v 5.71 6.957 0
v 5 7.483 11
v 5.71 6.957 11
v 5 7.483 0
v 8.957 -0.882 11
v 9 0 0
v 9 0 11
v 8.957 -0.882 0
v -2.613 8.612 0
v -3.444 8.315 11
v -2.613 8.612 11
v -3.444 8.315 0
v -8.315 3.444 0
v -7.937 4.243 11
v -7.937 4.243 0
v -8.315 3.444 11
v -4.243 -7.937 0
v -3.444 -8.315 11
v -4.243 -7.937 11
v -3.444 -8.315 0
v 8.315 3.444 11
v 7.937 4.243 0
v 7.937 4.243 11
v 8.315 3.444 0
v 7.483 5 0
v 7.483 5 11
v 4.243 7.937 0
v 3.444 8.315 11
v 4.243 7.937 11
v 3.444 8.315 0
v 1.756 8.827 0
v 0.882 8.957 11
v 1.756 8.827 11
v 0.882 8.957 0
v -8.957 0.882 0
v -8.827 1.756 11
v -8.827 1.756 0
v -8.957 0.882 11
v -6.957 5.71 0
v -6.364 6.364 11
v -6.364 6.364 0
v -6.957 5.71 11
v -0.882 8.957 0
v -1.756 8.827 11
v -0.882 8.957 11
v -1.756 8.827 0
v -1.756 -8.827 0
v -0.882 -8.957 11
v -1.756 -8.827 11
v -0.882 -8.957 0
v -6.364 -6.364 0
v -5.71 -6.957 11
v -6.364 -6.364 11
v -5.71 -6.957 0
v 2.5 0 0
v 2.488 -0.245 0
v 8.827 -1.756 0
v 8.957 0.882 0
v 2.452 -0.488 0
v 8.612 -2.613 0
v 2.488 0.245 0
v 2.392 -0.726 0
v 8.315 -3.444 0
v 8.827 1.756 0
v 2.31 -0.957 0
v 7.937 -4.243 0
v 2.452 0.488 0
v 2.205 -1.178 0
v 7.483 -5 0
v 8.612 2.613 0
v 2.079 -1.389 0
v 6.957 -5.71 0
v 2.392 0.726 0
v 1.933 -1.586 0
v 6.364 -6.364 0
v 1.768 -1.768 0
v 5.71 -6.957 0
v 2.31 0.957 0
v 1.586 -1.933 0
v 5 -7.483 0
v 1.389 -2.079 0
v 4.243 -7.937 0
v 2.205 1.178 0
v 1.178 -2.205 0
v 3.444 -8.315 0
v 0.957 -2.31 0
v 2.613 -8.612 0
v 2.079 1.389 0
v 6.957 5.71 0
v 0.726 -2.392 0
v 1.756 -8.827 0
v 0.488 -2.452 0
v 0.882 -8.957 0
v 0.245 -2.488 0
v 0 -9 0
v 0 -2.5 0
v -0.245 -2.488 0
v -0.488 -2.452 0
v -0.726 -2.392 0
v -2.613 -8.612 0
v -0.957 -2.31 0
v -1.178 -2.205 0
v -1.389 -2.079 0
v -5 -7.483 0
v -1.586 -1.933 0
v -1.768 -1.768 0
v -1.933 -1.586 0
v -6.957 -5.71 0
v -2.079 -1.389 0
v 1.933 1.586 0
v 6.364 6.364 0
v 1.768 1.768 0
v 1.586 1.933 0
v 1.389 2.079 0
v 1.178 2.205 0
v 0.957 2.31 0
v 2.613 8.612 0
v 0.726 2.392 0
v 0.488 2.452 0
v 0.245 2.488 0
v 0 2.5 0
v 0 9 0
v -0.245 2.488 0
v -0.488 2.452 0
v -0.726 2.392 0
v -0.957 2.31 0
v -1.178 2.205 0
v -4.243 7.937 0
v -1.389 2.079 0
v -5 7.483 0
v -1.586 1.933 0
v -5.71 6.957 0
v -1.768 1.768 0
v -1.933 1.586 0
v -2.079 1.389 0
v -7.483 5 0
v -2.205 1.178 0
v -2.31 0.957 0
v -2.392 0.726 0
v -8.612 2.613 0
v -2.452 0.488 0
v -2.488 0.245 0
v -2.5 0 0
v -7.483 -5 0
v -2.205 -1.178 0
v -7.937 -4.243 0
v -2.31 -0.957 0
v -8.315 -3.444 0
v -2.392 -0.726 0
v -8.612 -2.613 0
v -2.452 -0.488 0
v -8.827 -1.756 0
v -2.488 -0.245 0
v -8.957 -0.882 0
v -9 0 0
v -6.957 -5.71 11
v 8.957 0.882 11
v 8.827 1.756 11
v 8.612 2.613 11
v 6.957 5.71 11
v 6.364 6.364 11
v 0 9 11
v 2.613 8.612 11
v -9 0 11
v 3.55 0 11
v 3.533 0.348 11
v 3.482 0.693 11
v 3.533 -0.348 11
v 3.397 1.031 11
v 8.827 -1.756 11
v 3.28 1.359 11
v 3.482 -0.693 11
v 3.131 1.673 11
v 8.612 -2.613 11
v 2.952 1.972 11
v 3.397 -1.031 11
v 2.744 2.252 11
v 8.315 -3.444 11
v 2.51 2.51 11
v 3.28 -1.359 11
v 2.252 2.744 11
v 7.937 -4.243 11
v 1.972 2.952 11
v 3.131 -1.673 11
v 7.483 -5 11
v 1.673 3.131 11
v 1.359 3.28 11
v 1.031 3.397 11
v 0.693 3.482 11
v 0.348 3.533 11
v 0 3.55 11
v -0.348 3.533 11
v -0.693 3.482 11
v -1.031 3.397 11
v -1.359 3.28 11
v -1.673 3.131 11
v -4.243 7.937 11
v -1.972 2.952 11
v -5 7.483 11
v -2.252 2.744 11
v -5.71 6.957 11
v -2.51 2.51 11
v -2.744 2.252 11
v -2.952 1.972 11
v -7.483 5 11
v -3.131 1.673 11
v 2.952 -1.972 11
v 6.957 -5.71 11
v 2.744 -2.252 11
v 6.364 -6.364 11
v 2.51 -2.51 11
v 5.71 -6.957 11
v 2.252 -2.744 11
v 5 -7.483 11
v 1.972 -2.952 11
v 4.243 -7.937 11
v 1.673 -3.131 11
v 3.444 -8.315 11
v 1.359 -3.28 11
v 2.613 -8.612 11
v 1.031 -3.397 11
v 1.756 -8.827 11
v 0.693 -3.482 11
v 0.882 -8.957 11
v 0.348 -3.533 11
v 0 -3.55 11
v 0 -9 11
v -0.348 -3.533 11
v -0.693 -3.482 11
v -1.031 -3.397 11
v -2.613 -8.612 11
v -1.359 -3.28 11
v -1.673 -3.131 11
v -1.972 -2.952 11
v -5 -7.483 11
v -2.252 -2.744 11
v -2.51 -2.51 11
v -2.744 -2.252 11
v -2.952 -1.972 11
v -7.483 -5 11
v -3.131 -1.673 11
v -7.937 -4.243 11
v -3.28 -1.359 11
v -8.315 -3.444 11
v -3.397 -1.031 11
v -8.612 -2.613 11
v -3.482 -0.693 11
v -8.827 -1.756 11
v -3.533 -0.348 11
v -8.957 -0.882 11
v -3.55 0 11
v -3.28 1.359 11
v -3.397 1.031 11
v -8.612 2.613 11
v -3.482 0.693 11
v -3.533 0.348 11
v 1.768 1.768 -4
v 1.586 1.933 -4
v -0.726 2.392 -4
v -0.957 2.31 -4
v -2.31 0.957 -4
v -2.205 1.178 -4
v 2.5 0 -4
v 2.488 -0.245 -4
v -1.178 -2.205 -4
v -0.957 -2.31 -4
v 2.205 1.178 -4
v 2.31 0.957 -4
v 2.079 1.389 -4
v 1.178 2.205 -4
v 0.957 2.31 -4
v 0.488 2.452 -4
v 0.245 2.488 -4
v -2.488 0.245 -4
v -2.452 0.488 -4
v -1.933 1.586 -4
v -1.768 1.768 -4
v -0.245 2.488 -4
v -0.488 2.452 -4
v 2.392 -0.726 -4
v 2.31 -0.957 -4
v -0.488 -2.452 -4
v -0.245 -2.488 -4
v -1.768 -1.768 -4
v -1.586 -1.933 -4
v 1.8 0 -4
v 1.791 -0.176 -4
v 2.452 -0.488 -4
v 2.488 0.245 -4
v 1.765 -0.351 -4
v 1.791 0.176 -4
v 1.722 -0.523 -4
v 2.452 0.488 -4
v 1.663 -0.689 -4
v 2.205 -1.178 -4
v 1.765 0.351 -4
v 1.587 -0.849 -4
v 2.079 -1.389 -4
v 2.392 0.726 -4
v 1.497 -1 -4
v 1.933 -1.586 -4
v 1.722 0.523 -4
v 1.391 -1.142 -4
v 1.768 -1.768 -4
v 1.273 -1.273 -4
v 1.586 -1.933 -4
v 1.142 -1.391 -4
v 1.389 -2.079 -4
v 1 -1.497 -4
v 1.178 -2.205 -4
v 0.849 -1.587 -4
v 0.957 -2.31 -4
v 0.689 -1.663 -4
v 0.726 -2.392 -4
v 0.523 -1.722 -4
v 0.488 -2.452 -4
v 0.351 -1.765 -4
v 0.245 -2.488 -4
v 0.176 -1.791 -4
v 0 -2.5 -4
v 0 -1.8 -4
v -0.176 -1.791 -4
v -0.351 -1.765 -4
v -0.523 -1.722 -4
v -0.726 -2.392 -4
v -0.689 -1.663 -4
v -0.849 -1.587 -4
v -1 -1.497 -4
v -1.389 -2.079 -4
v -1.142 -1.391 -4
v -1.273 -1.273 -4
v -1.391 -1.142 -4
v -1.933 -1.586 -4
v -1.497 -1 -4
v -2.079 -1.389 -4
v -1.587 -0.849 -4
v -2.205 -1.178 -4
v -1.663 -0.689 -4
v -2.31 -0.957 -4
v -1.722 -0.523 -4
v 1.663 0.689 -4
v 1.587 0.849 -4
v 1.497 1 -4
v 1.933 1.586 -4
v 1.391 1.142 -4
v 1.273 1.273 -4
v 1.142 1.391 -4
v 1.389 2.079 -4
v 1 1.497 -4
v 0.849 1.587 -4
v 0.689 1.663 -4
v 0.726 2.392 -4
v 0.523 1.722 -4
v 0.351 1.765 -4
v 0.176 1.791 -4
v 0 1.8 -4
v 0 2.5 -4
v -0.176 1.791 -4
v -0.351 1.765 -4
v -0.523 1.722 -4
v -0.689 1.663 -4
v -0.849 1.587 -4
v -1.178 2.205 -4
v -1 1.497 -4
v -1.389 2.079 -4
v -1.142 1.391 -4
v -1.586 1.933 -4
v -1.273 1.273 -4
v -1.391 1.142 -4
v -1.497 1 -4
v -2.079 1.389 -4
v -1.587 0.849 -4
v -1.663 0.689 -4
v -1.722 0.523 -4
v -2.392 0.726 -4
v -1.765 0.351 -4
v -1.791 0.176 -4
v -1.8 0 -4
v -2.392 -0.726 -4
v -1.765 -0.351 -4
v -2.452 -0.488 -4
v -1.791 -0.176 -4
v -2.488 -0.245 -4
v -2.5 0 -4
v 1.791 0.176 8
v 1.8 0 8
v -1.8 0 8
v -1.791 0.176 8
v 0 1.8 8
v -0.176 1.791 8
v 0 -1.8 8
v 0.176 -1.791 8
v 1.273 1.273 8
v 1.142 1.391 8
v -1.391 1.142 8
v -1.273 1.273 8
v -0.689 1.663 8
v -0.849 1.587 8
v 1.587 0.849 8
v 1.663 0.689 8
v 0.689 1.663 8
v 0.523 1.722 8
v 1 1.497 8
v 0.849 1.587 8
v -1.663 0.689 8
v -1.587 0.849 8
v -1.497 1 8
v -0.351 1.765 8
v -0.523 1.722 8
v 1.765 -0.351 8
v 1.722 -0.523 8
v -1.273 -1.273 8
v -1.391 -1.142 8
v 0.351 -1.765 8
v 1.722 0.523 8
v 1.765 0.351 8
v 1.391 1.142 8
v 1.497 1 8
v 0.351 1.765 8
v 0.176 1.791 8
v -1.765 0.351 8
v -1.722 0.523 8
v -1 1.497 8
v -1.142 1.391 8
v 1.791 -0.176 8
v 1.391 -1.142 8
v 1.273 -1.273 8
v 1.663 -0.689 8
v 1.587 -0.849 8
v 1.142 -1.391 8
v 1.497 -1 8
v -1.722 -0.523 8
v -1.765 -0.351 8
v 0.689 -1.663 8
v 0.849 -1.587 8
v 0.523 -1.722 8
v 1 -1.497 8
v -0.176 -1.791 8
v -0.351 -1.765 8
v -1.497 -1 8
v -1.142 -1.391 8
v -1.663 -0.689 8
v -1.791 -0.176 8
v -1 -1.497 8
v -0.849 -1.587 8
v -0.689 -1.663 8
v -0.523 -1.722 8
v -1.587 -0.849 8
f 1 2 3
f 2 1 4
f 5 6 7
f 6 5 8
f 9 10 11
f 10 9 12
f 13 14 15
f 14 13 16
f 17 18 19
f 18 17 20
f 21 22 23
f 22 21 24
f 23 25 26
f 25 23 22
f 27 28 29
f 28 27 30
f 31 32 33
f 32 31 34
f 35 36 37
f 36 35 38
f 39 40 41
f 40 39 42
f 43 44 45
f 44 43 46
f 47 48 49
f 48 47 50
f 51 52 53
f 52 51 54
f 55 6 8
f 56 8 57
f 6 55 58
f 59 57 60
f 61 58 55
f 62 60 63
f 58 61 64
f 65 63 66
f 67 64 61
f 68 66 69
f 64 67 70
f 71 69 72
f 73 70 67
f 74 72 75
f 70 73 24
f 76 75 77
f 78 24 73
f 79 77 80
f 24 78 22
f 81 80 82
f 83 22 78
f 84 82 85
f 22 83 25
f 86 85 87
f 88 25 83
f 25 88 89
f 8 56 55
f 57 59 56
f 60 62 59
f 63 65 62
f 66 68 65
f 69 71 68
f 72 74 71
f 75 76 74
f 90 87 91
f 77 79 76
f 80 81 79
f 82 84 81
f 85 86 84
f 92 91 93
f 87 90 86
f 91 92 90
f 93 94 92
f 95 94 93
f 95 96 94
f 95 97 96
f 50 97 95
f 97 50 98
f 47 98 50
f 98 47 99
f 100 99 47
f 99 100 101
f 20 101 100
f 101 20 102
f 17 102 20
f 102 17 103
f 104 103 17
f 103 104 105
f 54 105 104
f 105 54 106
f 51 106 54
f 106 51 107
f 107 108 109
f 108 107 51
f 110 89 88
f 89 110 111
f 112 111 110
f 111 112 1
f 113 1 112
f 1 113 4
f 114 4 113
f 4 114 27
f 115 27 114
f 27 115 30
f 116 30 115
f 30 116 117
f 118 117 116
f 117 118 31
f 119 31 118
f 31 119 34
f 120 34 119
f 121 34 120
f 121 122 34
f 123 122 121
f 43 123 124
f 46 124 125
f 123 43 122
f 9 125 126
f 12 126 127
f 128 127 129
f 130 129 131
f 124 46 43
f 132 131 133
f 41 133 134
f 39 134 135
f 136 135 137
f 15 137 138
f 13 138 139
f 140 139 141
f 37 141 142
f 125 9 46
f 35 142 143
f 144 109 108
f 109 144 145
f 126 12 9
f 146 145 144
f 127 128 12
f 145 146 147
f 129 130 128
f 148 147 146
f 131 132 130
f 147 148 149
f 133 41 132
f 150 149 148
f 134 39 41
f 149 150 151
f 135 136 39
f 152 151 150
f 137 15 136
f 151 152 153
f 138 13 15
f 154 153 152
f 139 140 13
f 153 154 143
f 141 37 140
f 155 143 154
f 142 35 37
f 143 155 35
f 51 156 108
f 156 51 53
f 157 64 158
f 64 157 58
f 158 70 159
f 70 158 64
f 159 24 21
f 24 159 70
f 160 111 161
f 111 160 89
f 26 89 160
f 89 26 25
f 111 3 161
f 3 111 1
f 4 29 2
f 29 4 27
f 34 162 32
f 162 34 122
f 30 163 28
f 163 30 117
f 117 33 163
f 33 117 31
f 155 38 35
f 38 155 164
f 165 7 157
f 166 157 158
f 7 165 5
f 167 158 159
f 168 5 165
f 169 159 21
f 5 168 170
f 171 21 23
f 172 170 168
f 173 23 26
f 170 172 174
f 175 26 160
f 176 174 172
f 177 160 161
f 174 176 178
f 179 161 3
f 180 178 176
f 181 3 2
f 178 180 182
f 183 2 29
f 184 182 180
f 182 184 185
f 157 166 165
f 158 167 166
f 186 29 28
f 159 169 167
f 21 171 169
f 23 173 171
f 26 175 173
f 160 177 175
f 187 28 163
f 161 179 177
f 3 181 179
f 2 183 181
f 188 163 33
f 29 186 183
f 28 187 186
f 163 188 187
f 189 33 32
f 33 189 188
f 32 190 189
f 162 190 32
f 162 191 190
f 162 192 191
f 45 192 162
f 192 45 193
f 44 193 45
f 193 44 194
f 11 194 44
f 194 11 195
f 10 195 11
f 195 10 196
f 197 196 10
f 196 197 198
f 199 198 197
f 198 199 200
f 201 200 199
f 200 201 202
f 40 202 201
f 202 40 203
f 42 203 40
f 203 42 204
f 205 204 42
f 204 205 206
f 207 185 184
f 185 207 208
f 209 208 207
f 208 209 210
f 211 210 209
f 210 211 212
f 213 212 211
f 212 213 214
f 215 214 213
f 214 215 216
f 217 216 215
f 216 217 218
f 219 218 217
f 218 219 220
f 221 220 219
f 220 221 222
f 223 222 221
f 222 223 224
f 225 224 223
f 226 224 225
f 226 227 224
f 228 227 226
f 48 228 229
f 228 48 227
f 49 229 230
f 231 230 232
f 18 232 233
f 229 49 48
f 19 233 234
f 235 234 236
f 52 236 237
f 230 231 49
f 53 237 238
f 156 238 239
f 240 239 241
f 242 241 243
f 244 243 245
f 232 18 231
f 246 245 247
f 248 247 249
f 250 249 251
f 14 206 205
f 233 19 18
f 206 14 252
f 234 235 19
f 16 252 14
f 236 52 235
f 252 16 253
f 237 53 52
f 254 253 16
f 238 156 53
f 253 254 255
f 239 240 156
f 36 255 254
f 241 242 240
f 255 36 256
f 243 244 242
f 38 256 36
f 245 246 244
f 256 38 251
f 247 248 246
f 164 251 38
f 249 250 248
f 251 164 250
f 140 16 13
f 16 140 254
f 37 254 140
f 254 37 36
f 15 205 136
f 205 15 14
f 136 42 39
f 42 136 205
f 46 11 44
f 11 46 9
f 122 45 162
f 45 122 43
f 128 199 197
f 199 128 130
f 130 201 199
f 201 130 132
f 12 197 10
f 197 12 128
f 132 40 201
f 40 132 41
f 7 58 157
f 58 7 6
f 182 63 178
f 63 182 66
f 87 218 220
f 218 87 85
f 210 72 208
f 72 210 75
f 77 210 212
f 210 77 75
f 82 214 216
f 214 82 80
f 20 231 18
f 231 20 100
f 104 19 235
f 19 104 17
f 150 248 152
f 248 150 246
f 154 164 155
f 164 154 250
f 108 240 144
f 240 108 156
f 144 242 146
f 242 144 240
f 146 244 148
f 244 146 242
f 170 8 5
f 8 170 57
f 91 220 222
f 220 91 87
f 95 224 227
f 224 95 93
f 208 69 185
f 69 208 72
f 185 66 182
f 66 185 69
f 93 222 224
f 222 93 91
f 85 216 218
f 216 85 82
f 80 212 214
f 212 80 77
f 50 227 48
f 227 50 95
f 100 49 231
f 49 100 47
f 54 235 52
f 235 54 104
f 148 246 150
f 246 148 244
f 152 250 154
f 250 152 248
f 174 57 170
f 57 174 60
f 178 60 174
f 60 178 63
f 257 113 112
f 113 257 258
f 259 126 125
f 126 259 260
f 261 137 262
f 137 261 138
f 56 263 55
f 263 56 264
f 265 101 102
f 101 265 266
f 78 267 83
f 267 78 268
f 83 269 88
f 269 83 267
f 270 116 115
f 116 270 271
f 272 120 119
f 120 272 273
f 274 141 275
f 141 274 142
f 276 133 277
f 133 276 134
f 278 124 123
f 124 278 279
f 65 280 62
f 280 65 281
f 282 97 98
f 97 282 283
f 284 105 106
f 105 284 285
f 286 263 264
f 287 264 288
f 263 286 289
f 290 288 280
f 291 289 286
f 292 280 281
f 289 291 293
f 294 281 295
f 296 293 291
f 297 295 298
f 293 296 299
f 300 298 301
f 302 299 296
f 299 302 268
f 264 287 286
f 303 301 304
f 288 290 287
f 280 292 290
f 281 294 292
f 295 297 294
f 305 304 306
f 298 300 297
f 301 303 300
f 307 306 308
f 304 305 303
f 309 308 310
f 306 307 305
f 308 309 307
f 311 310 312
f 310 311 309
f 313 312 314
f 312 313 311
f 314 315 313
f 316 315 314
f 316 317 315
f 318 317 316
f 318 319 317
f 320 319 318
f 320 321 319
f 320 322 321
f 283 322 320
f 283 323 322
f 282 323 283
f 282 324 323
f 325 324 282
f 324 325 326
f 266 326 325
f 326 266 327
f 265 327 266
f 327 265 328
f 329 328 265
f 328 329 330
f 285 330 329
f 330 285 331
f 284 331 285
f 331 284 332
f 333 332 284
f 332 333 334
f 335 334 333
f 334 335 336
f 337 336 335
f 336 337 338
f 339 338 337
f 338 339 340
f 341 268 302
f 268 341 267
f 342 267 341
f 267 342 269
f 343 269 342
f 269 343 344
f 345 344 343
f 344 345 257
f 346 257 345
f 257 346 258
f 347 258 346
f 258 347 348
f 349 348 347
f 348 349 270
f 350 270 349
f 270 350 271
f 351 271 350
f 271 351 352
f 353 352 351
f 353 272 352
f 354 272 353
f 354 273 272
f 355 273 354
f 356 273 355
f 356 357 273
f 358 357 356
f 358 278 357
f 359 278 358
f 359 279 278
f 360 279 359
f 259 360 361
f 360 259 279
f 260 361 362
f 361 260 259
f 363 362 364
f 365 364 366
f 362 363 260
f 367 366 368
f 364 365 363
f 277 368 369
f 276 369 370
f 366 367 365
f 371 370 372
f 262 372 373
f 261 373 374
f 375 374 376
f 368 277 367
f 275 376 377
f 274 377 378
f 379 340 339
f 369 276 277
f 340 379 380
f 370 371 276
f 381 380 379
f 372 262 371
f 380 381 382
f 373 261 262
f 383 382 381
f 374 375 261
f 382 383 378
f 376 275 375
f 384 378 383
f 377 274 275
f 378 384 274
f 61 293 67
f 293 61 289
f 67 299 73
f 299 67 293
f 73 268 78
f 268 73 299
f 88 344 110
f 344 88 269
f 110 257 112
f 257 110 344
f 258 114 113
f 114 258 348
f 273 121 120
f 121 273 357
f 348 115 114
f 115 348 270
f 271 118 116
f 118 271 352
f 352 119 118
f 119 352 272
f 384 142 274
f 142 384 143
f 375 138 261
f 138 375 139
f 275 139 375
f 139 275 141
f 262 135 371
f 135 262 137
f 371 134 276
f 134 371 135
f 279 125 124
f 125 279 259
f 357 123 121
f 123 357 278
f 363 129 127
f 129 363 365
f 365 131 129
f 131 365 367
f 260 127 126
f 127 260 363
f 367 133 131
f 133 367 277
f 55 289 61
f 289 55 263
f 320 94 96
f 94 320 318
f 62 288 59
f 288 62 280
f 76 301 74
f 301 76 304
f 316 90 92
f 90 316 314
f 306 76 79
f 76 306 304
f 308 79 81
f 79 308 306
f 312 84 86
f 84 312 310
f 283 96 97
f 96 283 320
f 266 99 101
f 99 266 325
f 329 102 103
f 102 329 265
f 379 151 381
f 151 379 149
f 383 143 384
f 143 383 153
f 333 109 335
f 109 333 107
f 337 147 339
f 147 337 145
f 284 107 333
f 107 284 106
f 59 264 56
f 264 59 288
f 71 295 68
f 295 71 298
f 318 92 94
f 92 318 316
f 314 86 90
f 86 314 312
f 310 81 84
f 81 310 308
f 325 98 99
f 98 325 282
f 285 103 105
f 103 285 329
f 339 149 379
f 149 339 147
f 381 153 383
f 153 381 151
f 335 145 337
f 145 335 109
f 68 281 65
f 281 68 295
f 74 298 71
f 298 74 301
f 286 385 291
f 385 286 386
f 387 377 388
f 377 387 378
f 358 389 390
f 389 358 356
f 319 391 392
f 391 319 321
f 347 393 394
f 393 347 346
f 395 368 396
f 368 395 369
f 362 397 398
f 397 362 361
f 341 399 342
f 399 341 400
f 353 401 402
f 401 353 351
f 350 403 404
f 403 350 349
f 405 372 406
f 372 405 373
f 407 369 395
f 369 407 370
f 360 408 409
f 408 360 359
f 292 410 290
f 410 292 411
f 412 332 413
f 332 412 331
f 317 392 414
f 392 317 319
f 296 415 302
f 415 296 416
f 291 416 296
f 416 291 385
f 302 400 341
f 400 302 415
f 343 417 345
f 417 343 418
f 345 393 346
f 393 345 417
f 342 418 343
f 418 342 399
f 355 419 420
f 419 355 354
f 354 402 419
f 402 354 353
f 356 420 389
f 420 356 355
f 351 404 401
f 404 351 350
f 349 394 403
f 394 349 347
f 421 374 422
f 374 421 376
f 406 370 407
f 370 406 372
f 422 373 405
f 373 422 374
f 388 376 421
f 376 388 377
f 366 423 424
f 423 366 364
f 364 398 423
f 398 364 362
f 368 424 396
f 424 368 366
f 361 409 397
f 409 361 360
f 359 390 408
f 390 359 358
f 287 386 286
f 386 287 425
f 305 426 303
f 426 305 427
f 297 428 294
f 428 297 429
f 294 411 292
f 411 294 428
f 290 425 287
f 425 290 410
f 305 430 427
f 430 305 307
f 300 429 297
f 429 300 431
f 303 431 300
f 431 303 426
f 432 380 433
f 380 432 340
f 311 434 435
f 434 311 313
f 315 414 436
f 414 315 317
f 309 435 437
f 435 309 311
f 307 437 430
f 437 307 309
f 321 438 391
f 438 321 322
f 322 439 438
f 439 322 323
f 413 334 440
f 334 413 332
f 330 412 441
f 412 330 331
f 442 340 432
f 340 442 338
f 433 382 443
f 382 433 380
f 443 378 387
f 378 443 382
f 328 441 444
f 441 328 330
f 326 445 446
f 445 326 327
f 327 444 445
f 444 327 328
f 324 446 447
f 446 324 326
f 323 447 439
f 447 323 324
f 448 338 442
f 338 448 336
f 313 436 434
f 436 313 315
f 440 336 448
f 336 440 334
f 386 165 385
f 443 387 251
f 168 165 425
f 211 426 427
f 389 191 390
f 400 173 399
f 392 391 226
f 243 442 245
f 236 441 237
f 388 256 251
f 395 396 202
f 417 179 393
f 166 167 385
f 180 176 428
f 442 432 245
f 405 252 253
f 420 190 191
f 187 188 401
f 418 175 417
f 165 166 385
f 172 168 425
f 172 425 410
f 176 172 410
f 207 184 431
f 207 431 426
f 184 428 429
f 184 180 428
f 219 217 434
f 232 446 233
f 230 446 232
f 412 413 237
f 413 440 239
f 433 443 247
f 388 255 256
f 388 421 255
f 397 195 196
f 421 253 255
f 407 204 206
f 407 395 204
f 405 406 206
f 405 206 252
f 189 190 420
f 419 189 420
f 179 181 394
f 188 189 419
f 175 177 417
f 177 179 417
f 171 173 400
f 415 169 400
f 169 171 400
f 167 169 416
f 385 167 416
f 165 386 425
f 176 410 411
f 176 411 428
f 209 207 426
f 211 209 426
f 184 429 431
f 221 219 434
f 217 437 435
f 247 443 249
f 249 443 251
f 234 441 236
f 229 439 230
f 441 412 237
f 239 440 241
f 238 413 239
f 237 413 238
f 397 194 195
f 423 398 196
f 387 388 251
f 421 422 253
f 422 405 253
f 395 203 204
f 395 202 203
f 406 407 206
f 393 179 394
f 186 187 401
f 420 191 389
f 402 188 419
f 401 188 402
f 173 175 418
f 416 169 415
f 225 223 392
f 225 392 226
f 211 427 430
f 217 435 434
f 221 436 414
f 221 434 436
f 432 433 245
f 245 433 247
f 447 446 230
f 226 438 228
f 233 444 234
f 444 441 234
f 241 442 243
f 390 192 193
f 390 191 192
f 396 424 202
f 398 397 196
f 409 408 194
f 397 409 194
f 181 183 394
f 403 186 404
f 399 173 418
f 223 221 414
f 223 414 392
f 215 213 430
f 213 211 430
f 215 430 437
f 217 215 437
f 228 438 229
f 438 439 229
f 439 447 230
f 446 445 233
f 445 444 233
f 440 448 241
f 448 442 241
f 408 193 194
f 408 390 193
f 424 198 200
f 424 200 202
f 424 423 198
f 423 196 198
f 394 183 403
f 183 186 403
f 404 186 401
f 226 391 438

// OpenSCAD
washer_dia = 18;
washer_hole = 3.6;
washer_height = 11;

pin_dia = 5;
pin_height = 4;

screw_head_dia = 7.1;
screw_head_height = 3;

$fn = 64;

difference() {
    union() {        
        cylinder(d = washer_dia, h = washer_height);
        translate([0, 0, - pin_height])
            cylinder(d = pin_dia, h = pin_height);
    }
    translate([0, 0, - pin_height]) 
        cylinder(d = washer_hole, h = washer_height + pin_height);
    translate([0, 0, washer_height - screw_head_height])
        cylinder(d2 = screw_head_dia, d1 = washer_hole, h = screw_head_height);    
}
